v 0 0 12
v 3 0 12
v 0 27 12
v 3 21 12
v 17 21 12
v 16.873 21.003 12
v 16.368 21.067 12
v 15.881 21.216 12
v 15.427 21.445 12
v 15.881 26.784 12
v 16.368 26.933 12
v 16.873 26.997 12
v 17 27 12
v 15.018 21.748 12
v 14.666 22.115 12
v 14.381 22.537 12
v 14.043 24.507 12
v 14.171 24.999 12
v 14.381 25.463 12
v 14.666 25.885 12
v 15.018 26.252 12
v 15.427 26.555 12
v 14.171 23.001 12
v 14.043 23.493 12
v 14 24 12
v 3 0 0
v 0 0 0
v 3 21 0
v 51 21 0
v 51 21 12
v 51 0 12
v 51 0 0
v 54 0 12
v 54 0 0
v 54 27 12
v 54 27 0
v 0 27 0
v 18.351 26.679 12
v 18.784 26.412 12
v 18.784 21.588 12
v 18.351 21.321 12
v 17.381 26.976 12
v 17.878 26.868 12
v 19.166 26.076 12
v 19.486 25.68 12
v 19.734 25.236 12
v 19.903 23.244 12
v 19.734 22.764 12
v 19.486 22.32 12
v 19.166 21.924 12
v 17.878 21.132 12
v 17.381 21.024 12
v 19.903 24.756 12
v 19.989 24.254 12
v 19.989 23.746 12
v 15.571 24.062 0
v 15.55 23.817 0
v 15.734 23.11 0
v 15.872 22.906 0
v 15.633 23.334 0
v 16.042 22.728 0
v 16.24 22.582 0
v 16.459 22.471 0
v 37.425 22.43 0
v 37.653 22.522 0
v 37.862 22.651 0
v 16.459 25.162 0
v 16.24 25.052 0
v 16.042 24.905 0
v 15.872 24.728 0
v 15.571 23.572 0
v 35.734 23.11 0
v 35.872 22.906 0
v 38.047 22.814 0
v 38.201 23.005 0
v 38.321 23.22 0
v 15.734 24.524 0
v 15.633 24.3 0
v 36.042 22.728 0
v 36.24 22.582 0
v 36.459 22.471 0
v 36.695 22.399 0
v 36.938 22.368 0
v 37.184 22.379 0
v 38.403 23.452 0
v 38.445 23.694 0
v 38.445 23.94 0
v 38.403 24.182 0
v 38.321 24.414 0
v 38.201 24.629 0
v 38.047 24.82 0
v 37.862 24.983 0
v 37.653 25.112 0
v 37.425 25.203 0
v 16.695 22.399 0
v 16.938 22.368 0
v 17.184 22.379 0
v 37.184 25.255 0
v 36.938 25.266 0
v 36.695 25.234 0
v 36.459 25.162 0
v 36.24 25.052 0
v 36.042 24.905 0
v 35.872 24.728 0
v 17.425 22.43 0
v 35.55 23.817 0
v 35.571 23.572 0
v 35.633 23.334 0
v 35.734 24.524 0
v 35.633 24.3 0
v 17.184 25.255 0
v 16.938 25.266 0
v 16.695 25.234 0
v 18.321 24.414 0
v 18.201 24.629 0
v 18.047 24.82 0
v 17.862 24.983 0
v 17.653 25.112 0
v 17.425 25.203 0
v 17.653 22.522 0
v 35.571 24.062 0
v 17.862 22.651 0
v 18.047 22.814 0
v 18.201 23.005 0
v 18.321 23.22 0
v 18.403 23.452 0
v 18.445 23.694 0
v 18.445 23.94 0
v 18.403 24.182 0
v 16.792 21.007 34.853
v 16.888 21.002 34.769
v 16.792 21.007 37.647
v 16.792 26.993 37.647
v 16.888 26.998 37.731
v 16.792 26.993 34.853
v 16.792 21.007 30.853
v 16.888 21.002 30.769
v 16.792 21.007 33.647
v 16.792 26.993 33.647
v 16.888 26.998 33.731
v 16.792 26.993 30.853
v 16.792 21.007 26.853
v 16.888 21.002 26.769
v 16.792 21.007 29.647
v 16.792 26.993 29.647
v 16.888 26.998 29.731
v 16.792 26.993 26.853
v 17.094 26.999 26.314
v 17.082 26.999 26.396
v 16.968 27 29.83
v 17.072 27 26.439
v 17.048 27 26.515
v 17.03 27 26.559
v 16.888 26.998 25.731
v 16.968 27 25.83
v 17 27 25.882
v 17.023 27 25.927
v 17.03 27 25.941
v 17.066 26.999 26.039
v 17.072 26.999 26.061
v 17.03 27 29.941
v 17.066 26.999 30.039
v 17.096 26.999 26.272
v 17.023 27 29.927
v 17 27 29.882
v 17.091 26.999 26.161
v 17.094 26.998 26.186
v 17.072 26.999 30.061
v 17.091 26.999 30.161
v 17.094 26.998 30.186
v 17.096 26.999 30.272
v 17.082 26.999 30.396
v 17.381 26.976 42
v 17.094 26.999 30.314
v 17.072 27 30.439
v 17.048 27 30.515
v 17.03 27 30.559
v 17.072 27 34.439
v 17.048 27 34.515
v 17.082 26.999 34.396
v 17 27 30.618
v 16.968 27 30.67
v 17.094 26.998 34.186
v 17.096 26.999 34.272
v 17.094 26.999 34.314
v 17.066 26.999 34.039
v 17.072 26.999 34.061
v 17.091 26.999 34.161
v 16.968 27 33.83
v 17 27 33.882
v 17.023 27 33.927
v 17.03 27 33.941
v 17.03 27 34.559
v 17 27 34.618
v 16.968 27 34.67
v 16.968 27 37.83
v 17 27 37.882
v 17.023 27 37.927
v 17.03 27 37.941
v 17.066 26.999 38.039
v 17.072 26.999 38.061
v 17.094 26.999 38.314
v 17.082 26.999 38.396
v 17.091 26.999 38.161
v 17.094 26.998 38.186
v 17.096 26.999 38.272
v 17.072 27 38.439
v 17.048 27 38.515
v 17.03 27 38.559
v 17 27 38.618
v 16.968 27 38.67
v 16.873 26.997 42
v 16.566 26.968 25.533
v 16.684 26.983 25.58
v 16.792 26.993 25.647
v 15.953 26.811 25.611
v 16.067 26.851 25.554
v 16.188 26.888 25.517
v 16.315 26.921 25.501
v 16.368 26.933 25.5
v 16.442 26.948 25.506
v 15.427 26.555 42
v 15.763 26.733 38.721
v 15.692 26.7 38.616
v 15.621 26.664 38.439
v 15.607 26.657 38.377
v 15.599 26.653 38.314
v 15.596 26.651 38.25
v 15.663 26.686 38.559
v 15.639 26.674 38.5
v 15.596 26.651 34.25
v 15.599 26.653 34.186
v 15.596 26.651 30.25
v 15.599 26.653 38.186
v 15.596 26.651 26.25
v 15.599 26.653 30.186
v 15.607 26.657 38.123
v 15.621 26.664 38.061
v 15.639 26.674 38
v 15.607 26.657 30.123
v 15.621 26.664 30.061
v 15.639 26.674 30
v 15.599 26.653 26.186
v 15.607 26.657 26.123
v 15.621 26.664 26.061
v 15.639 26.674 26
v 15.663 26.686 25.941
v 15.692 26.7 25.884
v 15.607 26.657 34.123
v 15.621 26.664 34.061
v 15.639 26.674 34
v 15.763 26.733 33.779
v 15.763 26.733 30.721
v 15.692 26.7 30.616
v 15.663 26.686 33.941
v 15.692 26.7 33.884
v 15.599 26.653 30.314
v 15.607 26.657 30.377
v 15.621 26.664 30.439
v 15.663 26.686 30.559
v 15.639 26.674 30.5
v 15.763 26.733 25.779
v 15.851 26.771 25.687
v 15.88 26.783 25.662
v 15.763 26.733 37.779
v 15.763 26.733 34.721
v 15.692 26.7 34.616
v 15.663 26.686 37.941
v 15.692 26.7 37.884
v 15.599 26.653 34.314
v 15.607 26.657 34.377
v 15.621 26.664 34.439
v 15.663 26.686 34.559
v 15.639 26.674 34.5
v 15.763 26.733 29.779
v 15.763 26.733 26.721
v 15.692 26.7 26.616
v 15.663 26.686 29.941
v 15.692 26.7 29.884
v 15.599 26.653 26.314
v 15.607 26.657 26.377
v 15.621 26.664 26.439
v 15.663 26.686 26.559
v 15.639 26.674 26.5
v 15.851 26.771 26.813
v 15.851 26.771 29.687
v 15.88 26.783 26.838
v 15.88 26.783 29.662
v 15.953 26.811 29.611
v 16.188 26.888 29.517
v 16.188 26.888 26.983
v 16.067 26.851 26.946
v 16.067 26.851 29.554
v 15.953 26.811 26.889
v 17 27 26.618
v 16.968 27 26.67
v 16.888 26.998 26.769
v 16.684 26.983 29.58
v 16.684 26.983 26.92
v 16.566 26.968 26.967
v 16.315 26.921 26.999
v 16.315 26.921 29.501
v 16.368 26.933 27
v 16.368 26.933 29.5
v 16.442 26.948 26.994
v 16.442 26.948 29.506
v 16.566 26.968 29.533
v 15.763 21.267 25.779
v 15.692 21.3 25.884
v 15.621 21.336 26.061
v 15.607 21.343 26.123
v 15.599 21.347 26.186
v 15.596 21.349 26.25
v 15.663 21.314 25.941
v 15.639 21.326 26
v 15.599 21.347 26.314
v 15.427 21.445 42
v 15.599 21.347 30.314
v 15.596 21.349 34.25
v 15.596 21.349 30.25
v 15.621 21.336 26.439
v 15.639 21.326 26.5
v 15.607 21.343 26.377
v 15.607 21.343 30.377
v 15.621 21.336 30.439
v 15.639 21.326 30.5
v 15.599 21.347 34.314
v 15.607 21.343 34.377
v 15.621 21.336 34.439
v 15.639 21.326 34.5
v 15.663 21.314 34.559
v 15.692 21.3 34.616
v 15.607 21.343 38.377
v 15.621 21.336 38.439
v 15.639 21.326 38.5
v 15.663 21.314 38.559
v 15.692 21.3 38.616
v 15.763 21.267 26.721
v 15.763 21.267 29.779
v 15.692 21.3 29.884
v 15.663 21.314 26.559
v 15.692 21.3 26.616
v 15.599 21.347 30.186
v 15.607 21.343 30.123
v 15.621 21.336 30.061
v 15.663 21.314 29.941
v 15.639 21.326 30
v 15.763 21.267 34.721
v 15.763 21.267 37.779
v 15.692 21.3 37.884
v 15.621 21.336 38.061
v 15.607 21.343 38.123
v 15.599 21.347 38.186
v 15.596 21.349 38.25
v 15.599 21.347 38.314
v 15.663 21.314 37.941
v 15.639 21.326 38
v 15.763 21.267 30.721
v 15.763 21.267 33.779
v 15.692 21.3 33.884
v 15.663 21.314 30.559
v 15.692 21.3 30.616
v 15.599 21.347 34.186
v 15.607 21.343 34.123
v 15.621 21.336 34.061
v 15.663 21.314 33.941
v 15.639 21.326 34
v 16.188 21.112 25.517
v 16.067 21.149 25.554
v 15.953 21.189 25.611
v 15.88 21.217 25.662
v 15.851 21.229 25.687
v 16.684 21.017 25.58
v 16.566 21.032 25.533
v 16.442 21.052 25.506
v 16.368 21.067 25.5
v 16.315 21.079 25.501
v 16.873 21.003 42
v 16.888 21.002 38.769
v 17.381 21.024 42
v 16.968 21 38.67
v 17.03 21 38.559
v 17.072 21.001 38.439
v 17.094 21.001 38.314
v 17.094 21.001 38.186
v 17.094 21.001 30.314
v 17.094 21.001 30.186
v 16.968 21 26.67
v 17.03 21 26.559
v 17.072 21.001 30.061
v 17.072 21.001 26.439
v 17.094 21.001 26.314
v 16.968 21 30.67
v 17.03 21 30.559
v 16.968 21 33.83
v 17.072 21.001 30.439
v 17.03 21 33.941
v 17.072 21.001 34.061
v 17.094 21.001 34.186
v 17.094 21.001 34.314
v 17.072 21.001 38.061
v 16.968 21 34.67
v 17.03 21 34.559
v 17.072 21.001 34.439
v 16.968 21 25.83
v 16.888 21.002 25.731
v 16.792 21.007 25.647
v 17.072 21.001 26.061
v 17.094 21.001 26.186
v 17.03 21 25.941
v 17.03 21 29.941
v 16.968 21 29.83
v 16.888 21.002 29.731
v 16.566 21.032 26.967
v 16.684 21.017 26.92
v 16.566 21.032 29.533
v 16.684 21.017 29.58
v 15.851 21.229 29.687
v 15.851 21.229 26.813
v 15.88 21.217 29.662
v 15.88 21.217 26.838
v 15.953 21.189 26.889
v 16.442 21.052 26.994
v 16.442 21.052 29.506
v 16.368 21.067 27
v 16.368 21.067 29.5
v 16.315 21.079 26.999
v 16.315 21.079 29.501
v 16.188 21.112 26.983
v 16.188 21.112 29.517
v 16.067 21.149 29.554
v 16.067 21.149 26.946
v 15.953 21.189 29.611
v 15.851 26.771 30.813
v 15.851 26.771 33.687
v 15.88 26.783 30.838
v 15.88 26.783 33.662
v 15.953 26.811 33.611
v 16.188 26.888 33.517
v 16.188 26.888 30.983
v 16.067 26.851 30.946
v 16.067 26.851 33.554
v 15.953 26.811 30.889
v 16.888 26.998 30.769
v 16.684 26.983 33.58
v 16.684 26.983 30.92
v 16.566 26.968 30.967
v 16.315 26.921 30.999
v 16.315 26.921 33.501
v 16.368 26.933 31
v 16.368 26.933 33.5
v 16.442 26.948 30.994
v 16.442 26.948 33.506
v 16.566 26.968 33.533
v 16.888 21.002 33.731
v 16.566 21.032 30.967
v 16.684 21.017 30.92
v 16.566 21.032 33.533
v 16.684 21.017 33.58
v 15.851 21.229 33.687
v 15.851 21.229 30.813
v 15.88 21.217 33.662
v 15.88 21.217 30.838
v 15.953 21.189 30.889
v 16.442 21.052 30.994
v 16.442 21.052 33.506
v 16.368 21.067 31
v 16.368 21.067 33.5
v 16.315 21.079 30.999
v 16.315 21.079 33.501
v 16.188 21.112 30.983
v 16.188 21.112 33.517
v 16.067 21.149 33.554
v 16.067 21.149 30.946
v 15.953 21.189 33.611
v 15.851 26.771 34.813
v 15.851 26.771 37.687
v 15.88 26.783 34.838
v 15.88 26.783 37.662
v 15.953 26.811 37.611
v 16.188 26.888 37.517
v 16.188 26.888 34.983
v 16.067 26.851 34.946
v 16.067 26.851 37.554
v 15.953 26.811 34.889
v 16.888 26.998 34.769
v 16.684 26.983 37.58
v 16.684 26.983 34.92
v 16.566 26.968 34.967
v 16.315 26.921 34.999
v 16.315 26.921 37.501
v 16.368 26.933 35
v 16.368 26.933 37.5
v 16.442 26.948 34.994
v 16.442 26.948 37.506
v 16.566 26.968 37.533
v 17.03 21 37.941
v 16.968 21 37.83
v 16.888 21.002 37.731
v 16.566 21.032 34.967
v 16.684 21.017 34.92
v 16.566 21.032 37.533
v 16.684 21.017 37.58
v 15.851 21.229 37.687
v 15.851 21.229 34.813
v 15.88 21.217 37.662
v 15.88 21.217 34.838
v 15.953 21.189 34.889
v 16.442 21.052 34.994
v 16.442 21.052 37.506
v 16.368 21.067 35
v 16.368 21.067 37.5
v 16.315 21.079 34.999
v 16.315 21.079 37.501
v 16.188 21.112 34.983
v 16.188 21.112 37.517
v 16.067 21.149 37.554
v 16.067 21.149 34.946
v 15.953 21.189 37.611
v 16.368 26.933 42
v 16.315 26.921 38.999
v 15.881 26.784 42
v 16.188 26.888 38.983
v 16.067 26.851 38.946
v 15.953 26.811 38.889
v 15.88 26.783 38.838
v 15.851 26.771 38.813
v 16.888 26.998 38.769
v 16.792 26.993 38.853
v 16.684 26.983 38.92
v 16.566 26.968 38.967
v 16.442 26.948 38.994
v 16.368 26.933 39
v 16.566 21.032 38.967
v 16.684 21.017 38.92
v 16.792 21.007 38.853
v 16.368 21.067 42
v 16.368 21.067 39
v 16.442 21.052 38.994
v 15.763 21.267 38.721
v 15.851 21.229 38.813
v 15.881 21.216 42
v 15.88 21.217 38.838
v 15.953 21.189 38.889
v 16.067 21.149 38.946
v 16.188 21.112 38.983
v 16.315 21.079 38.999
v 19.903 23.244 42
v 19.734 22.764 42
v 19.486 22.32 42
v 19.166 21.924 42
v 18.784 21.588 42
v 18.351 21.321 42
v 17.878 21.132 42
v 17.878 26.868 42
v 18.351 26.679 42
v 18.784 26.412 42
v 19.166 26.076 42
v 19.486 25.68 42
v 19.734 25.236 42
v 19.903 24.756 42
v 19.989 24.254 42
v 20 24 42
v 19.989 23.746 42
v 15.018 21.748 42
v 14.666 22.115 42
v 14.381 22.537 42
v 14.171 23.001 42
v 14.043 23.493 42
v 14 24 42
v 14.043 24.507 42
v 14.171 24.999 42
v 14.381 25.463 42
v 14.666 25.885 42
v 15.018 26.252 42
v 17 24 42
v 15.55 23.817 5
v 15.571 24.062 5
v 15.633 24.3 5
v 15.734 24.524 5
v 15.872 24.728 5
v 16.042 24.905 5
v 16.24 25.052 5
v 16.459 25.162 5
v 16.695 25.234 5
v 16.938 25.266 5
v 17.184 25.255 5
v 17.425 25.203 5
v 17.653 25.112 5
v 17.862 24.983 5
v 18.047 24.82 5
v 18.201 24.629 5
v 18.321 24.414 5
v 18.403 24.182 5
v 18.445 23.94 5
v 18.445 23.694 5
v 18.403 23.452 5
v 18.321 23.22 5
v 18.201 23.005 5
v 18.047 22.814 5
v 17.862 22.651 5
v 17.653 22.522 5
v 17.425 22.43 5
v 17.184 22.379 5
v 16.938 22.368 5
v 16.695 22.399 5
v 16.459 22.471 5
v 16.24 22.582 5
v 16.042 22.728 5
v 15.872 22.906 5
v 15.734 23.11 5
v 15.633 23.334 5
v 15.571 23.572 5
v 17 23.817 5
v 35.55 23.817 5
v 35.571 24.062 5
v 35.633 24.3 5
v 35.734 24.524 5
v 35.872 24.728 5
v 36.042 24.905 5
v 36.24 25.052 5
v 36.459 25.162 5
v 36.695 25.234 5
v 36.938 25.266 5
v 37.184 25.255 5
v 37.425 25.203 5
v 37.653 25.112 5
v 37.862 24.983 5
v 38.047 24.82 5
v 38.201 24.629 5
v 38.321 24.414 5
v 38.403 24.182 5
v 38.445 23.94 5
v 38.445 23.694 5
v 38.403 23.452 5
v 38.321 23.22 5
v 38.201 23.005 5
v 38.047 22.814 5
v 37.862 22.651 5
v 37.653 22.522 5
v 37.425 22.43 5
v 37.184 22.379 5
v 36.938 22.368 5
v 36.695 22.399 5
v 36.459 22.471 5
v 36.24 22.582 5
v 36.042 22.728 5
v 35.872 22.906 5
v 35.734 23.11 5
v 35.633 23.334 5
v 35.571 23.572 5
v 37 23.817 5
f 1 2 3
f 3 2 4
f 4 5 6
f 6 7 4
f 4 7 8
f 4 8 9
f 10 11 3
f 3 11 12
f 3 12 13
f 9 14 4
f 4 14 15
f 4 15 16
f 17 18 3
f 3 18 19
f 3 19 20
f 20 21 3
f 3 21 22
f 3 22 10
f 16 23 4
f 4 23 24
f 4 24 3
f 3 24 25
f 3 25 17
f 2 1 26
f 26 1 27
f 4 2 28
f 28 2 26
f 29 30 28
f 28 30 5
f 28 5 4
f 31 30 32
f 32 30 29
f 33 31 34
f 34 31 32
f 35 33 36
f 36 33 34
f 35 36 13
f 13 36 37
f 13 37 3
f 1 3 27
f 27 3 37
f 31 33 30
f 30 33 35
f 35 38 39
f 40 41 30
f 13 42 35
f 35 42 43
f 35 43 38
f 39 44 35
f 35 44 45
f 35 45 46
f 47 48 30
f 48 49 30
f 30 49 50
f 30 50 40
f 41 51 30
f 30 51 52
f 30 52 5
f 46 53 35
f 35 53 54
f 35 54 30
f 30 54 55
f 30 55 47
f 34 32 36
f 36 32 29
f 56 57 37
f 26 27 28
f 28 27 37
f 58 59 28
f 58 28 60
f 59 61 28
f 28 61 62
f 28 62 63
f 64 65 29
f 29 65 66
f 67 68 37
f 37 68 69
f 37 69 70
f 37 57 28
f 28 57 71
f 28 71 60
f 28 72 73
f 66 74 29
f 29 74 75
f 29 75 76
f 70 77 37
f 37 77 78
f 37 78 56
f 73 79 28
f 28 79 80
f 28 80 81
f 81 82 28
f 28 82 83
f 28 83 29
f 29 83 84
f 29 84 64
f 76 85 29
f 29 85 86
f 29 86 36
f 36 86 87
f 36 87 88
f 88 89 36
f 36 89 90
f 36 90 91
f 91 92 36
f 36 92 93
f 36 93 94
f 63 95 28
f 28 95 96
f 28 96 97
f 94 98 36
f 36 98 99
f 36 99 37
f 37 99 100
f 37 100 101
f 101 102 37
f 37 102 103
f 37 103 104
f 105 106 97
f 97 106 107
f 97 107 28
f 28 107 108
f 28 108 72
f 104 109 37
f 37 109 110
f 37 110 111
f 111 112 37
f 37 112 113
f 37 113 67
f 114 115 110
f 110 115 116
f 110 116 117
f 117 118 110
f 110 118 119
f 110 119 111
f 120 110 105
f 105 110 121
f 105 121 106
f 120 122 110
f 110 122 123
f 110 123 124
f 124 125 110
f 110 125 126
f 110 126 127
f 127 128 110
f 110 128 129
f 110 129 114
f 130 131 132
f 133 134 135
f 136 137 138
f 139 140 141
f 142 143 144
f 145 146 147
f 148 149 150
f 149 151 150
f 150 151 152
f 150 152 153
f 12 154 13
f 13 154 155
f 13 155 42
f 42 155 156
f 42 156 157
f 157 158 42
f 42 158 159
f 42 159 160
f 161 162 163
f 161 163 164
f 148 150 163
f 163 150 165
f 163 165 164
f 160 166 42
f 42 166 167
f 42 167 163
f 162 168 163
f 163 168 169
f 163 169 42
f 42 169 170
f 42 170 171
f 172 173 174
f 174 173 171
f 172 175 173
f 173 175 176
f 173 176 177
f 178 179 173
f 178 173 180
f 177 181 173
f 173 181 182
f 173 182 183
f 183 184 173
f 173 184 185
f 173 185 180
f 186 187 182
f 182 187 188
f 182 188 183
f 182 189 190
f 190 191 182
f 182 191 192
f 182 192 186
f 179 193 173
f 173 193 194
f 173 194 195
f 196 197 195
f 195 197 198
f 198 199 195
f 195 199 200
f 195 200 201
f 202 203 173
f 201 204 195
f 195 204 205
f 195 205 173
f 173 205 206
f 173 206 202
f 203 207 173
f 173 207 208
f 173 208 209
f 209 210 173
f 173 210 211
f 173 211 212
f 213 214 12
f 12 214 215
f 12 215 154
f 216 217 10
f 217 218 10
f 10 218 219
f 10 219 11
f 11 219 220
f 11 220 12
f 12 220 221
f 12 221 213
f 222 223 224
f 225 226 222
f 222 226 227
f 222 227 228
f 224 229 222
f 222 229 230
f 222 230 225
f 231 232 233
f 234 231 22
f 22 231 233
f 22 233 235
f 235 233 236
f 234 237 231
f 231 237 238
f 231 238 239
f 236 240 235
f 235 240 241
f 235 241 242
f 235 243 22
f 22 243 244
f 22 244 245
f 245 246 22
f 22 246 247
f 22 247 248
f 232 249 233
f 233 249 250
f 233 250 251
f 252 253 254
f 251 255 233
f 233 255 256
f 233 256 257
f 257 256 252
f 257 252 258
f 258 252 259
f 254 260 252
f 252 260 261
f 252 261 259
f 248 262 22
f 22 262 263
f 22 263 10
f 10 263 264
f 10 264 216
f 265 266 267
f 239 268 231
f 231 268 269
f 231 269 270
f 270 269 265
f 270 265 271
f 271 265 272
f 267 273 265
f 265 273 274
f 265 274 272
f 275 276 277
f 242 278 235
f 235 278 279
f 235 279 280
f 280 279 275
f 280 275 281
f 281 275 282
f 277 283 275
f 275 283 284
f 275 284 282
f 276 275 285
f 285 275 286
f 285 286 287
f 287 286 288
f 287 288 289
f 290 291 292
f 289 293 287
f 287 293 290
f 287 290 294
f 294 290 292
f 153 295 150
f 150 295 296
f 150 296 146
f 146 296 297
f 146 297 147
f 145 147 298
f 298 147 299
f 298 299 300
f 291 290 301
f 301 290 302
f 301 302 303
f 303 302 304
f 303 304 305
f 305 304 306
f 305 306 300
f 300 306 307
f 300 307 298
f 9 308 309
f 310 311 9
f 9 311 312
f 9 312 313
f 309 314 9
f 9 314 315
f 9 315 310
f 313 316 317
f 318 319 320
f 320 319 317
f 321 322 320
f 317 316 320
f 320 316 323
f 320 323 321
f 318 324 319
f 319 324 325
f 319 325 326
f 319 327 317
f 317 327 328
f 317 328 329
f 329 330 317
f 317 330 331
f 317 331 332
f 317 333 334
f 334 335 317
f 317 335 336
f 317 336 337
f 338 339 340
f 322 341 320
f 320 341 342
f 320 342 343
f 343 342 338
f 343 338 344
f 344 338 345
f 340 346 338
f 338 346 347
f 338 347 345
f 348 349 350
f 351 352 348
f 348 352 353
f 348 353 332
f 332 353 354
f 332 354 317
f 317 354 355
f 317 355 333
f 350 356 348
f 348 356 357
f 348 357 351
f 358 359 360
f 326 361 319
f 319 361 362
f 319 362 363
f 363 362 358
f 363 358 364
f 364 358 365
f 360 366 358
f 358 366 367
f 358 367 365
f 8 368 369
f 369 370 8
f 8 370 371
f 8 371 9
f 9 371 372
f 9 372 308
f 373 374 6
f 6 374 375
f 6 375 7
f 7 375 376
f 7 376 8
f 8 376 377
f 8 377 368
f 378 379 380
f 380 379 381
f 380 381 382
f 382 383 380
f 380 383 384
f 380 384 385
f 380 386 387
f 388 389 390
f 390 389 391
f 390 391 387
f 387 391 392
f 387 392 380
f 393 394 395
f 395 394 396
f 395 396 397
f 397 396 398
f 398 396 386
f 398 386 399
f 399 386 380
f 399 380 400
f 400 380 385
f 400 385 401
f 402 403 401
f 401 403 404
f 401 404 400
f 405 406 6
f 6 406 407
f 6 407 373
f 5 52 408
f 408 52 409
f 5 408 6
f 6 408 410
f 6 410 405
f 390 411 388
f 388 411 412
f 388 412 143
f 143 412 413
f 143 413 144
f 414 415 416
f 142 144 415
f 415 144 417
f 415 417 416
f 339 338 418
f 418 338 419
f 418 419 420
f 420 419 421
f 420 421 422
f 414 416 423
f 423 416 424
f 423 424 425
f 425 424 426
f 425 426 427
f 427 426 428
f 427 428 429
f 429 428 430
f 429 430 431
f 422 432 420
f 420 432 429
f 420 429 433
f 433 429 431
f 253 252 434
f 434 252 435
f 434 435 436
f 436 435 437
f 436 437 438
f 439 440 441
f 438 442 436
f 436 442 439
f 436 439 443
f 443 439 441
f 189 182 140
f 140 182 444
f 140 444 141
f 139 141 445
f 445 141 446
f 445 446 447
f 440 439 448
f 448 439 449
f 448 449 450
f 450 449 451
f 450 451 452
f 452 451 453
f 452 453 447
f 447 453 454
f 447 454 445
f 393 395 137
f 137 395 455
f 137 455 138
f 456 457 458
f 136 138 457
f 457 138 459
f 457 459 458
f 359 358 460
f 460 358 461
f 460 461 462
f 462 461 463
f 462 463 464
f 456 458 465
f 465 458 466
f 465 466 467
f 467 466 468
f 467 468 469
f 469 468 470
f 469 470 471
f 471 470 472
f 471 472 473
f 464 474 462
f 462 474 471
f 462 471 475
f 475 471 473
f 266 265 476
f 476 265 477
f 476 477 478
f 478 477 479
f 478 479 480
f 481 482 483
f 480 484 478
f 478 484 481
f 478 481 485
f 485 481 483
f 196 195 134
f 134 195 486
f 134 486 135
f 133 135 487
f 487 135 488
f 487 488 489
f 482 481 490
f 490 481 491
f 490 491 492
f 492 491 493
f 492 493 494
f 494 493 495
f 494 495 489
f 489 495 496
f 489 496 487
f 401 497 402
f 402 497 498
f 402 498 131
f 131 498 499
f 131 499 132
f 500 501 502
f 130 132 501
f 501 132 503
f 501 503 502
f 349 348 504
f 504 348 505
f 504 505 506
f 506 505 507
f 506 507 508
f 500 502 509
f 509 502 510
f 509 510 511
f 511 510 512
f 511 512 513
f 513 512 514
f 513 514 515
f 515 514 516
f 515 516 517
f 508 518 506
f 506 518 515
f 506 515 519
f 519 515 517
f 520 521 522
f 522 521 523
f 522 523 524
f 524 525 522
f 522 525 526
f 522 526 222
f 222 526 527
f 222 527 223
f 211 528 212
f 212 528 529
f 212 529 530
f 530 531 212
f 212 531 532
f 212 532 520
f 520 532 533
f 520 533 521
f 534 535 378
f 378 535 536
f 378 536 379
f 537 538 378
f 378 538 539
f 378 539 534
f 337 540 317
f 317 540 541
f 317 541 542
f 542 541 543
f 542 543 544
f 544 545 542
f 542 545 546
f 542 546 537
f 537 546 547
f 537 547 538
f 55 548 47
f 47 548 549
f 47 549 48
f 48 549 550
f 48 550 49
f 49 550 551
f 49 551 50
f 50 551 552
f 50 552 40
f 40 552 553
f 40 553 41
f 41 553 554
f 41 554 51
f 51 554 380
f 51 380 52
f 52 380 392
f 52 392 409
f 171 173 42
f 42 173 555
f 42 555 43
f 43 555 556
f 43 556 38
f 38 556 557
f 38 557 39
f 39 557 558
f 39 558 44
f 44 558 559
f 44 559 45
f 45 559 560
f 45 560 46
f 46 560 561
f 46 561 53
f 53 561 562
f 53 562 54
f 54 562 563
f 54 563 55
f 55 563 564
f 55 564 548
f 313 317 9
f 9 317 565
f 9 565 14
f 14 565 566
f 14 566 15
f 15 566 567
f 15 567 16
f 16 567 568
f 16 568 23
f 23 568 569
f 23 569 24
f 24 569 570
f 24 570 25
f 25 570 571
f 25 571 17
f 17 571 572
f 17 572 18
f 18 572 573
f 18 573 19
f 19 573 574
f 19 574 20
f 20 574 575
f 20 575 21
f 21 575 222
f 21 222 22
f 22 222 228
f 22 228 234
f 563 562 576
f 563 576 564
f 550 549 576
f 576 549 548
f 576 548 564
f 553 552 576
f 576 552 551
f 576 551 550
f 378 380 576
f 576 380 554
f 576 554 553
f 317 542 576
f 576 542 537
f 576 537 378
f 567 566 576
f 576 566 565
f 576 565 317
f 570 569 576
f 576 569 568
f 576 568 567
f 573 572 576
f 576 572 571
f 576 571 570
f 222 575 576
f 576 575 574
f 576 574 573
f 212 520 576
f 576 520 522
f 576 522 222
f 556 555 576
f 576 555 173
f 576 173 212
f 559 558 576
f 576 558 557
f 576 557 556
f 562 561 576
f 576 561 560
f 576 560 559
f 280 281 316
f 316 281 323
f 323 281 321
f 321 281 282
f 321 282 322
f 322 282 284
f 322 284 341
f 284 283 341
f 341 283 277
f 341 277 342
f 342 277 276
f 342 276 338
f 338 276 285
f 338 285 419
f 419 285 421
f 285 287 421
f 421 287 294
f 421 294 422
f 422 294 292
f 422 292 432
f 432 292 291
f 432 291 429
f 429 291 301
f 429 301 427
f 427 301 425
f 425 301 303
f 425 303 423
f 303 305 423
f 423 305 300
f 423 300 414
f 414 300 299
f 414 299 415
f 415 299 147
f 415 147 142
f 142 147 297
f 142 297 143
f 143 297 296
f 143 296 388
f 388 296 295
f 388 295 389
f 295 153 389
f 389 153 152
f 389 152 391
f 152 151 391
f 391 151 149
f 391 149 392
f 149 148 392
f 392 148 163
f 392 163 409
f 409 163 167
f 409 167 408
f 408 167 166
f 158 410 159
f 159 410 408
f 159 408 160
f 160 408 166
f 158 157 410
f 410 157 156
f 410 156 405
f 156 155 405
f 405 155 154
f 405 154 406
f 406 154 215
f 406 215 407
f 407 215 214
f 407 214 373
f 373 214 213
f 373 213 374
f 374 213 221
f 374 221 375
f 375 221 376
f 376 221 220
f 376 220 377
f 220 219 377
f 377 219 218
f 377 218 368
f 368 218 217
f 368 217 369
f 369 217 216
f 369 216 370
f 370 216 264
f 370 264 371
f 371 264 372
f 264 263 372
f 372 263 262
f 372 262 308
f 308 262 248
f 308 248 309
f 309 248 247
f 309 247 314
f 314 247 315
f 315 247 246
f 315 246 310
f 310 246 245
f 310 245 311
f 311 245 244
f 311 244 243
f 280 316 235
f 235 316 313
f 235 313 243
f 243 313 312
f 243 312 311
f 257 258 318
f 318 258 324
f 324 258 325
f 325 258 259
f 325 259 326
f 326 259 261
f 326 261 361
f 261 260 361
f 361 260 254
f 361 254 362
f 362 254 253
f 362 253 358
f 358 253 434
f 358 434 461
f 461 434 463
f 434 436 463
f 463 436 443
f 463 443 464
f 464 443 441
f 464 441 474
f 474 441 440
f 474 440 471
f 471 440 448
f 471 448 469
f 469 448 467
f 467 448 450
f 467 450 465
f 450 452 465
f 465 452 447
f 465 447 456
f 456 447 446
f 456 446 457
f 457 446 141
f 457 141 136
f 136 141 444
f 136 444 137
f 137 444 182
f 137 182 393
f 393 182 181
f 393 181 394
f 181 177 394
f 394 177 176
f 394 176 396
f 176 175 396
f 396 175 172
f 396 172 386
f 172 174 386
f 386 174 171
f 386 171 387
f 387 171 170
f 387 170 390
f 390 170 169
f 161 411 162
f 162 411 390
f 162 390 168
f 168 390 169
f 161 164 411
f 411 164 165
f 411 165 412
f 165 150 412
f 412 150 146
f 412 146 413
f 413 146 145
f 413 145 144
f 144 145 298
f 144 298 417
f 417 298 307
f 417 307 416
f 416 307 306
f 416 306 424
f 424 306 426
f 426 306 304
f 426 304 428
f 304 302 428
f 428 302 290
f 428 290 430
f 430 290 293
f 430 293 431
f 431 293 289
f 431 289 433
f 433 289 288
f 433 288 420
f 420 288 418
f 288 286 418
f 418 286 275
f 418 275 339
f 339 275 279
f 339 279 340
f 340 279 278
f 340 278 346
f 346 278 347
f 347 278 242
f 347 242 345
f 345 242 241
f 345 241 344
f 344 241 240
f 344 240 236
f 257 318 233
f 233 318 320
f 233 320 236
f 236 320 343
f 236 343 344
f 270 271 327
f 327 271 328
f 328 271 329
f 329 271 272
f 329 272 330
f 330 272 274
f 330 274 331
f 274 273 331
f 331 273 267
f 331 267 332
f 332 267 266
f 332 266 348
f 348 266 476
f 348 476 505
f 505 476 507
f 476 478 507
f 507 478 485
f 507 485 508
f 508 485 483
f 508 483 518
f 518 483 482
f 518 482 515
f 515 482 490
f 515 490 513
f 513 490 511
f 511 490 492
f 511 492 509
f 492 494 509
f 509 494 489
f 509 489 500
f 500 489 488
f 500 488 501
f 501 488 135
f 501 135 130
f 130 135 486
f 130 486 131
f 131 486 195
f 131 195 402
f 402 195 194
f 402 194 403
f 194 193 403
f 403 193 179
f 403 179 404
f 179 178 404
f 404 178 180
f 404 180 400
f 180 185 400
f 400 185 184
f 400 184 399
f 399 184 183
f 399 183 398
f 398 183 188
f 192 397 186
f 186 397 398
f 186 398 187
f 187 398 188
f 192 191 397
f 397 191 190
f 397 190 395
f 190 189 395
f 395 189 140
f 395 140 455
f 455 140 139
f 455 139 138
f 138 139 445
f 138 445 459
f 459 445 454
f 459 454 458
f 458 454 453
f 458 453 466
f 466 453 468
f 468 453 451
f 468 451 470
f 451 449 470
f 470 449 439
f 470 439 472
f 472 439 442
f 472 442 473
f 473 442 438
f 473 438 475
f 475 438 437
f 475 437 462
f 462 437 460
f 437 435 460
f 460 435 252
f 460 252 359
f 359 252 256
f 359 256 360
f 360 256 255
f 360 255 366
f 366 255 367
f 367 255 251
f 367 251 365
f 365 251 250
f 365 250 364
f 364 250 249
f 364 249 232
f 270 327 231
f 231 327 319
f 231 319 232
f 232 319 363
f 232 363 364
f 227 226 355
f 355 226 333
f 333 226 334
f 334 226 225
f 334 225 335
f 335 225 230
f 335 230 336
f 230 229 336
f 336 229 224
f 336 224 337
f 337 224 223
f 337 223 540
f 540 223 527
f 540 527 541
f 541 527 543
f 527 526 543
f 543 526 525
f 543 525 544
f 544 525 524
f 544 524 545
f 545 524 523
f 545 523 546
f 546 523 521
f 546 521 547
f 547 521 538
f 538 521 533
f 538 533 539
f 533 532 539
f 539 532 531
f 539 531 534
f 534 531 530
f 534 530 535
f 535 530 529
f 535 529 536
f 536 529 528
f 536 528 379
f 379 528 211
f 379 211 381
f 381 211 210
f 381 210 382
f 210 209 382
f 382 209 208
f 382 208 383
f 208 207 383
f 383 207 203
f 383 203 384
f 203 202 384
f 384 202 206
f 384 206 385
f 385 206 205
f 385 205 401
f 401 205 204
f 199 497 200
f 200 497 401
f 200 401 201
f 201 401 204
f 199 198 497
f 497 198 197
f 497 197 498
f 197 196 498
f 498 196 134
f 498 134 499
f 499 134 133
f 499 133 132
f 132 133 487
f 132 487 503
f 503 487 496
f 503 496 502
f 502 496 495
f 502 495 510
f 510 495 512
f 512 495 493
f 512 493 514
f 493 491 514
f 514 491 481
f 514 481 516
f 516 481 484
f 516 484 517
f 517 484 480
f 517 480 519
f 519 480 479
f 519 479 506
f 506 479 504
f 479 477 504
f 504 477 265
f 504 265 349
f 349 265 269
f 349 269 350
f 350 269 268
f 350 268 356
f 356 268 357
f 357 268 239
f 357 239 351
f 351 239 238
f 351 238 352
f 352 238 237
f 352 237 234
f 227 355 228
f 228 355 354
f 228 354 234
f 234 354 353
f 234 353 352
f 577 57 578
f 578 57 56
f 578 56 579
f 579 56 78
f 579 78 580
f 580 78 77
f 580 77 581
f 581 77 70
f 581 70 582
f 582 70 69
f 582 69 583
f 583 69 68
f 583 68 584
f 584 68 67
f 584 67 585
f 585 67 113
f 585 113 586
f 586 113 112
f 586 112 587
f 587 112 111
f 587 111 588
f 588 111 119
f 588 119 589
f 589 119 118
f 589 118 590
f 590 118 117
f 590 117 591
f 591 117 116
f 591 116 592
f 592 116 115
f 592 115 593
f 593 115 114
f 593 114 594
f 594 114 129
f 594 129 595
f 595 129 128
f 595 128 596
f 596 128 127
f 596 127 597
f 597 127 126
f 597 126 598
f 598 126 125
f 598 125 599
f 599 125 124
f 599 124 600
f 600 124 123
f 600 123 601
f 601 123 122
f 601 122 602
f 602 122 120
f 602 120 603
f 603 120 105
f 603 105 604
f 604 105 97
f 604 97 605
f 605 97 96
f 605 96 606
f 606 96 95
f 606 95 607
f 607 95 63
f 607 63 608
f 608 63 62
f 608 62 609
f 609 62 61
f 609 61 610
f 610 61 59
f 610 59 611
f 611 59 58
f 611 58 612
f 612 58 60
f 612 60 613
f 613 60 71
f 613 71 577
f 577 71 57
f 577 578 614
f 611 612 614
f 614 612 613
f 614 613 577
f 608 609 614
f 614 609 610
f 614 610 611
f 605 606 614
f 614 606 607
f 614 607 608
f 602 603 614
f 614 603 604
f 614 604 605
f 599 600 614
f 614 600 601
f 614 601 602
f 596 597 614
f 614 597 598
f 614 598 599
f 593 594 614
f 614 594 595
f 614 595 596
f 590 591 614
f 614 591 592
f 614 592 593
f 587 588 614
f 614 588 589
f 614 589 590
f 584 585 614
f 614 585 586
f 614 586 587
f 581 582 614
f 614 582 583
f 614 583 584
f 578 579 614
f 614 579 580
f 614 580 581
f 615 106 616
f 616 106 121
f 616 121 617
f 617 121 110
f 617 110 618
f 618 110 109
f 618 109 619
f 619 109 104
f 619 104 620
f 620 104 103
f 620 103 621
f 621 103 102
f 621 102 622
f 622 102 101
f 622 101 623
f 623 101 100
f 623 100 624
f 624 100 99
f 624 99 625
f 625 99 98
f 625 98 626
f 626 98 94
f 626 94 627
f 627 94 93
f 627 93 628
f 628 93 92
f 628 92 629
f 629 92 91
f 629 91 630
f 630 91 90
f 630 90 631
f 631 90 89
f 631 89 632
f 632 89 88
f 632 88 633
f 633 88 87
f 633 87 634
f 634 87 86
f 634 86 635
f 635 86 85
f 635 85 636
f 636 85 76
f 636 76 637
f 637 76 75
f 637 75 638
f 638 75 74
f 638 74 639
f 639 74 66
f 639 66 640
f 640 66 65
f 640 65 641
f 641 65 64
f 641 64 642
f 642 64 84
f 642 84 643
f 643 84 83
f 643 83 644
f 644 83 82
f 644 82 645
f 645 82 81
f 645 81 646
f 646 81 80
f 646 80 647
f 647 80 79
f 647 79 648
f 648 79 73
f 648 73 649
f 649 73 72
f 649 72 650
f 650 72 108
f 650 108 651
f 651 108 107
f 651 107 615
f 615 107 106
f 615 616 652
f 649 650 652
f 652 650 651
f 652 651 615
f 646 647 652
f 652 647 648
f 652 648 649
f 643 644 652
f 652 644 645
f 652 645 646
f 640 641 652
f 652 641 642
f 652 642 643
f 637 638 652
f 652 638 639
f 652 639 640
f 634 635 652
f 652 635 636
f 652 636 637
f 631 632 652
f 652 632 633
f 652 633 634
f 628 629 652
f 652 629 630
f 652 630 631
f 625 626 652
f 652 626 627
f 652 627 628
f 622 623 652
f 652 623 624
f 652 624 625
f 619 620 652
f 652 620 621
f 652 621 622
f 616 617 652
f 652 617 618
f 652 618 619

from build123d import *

# Parameters (mm, degrees)
BOSS_EXTRUDE1_DEPTH = 12
SKETCH2_R           = 3
BOSS_EXTRUDE2_DEPTH = 30
CUT_EXTRUDE1_REACH  = 29
SKETCH3_R           = 0.75
SKETCH4_R           = 1.45
CUT_EXTRUDE2_DEPTH  = 5


with BuildPart() as part:
    # Sketch1 → Boss-Extrude1 (new body)
    with BuildSketch(Plane.XY):
        Polygon((0, 0), (0, 27), (54, 27), (54, 0), (51, 0), (51, 21), (3, 21), (3, 0), align=None)
    extrude(amount=BOSS_EXTRUDE1_DEPTH)

    # Sketch2 → Boss-Extrude2 (add)
    with BuildSketch(Plane.XY.offset(12)):
        with Locations((17, 24)):
            Circle(SKETCH2_R)
    extrude(amount=BOSS_EXTRUDE2_DEPTH)

    # Sketch3 → Cut-Extrude1 (cut, up to next)
    with BuildSketch(Plane(origin=(0, 27, 0), x_dir=(1, 0, 0), z_dir=(0, 1, 0)), mode=Mode.PRIVATE) as cut_extrude1_sk1:
        with Locations((16.346450023, -38.25)):
            Circle(SKETCH3_R)
    cut_extrude1_tool1 = extrude(cut_extrude1_sk1.sketch, amount=-CUT_EXTRUDE1_REACH, mode=Mode.PRIVATE) & part.part
    add(cut_extrude1_tool1.solids().sort_by_distance((16.34645, 27, 38.25))[0], mode=Mode.SUBTRACT)
    # Sketch3 → Cut-Extrude1 (cut, up to next)
    with BuildSketch(Plane(origin=(0, 27, 0), x_dir=(1, 0, 0), z_dir=(0, 1, 0)), mode=Mode.PRIVATE) as cut_extrude1_sk2:
        with Locations((16.346450023, -34.25)):
            Circle(SKETCH3_R)
    cut_extrude1_tool2 = extrude(cut_extrude1_sk2.sketch, amount=-CUT_EXTRUDE1_REACH, mode=Mode.PRIVATE) & part.part
    add(cut_extrude1_tool2.solids().sort_by_distance((16.34645, 27, 34.25))[0], mode=Mode.SUBTRACT)
    # Sketch3 → Cut-Extrude1 (cut, up to next)
    with BuildSketch(Plane(origin=(0, 27, 0), x_dir=(1, 0, 0), z_dir=(0, 1, 0)), mode=Mode.PRIVATE) as cut_extrude1_sk3:
        with Locations((16.346450023, -30.25)):
            Circle(SKETCH3_R)
    cut_extrude1_tool3 = extrude(cut_extrude1_sk3.sketch, amount=-CUT_EXTRUDE1_REACH, mode=Mode.PRIVATE) & part.part
    add(cut_extrude1_tool3.solids().sort_by_distance((16.34645, 27, 30.25))[0], mode=Mode.SUBTRACT)
    # Sketch3 → Cut-Extrude1 (cut, up to next)
    with BuildSketch(Plane(origin=(0, 27, 0), x_dir=(1, 0, 0), z_dir=(0, 1, 0)), mode=Mode.PRIVATE) as cut_extrude1_sk4:
        with Locations((16.346450023, -26.25)):
            Circle(SKETCH3_R)
    cut_extrude1_tool4 = extrude(cut_extrude1_sk4.sketch, amount=-CUT_EXTRUDE1_REACH, mode=Mode.PRIVATE) & part.part
    add(cut_extrude1_tool4.solids().sort_by_distance((16.34645, 27, 26.25))[0], mode=Mode.SUBTRACT)

    # Sketch4 → Cut-Extrude2 (cut)
    with BuildSketch(Plane(origin=(0, 0, 0), x_dir=(-1, 0, 0), z_dir=(0, 0, -1))):
        with Locations((-37, 23.816903441)):
            Circle(SKETCH4_R)
        with Locations((-17, 23.816903441)):
            Circle(SKETCH4_R)
    extrude(amount=-CUT_EXTRUDE2_DEPTH, mode=Mode.SUBTRACT)


solid = part.part
